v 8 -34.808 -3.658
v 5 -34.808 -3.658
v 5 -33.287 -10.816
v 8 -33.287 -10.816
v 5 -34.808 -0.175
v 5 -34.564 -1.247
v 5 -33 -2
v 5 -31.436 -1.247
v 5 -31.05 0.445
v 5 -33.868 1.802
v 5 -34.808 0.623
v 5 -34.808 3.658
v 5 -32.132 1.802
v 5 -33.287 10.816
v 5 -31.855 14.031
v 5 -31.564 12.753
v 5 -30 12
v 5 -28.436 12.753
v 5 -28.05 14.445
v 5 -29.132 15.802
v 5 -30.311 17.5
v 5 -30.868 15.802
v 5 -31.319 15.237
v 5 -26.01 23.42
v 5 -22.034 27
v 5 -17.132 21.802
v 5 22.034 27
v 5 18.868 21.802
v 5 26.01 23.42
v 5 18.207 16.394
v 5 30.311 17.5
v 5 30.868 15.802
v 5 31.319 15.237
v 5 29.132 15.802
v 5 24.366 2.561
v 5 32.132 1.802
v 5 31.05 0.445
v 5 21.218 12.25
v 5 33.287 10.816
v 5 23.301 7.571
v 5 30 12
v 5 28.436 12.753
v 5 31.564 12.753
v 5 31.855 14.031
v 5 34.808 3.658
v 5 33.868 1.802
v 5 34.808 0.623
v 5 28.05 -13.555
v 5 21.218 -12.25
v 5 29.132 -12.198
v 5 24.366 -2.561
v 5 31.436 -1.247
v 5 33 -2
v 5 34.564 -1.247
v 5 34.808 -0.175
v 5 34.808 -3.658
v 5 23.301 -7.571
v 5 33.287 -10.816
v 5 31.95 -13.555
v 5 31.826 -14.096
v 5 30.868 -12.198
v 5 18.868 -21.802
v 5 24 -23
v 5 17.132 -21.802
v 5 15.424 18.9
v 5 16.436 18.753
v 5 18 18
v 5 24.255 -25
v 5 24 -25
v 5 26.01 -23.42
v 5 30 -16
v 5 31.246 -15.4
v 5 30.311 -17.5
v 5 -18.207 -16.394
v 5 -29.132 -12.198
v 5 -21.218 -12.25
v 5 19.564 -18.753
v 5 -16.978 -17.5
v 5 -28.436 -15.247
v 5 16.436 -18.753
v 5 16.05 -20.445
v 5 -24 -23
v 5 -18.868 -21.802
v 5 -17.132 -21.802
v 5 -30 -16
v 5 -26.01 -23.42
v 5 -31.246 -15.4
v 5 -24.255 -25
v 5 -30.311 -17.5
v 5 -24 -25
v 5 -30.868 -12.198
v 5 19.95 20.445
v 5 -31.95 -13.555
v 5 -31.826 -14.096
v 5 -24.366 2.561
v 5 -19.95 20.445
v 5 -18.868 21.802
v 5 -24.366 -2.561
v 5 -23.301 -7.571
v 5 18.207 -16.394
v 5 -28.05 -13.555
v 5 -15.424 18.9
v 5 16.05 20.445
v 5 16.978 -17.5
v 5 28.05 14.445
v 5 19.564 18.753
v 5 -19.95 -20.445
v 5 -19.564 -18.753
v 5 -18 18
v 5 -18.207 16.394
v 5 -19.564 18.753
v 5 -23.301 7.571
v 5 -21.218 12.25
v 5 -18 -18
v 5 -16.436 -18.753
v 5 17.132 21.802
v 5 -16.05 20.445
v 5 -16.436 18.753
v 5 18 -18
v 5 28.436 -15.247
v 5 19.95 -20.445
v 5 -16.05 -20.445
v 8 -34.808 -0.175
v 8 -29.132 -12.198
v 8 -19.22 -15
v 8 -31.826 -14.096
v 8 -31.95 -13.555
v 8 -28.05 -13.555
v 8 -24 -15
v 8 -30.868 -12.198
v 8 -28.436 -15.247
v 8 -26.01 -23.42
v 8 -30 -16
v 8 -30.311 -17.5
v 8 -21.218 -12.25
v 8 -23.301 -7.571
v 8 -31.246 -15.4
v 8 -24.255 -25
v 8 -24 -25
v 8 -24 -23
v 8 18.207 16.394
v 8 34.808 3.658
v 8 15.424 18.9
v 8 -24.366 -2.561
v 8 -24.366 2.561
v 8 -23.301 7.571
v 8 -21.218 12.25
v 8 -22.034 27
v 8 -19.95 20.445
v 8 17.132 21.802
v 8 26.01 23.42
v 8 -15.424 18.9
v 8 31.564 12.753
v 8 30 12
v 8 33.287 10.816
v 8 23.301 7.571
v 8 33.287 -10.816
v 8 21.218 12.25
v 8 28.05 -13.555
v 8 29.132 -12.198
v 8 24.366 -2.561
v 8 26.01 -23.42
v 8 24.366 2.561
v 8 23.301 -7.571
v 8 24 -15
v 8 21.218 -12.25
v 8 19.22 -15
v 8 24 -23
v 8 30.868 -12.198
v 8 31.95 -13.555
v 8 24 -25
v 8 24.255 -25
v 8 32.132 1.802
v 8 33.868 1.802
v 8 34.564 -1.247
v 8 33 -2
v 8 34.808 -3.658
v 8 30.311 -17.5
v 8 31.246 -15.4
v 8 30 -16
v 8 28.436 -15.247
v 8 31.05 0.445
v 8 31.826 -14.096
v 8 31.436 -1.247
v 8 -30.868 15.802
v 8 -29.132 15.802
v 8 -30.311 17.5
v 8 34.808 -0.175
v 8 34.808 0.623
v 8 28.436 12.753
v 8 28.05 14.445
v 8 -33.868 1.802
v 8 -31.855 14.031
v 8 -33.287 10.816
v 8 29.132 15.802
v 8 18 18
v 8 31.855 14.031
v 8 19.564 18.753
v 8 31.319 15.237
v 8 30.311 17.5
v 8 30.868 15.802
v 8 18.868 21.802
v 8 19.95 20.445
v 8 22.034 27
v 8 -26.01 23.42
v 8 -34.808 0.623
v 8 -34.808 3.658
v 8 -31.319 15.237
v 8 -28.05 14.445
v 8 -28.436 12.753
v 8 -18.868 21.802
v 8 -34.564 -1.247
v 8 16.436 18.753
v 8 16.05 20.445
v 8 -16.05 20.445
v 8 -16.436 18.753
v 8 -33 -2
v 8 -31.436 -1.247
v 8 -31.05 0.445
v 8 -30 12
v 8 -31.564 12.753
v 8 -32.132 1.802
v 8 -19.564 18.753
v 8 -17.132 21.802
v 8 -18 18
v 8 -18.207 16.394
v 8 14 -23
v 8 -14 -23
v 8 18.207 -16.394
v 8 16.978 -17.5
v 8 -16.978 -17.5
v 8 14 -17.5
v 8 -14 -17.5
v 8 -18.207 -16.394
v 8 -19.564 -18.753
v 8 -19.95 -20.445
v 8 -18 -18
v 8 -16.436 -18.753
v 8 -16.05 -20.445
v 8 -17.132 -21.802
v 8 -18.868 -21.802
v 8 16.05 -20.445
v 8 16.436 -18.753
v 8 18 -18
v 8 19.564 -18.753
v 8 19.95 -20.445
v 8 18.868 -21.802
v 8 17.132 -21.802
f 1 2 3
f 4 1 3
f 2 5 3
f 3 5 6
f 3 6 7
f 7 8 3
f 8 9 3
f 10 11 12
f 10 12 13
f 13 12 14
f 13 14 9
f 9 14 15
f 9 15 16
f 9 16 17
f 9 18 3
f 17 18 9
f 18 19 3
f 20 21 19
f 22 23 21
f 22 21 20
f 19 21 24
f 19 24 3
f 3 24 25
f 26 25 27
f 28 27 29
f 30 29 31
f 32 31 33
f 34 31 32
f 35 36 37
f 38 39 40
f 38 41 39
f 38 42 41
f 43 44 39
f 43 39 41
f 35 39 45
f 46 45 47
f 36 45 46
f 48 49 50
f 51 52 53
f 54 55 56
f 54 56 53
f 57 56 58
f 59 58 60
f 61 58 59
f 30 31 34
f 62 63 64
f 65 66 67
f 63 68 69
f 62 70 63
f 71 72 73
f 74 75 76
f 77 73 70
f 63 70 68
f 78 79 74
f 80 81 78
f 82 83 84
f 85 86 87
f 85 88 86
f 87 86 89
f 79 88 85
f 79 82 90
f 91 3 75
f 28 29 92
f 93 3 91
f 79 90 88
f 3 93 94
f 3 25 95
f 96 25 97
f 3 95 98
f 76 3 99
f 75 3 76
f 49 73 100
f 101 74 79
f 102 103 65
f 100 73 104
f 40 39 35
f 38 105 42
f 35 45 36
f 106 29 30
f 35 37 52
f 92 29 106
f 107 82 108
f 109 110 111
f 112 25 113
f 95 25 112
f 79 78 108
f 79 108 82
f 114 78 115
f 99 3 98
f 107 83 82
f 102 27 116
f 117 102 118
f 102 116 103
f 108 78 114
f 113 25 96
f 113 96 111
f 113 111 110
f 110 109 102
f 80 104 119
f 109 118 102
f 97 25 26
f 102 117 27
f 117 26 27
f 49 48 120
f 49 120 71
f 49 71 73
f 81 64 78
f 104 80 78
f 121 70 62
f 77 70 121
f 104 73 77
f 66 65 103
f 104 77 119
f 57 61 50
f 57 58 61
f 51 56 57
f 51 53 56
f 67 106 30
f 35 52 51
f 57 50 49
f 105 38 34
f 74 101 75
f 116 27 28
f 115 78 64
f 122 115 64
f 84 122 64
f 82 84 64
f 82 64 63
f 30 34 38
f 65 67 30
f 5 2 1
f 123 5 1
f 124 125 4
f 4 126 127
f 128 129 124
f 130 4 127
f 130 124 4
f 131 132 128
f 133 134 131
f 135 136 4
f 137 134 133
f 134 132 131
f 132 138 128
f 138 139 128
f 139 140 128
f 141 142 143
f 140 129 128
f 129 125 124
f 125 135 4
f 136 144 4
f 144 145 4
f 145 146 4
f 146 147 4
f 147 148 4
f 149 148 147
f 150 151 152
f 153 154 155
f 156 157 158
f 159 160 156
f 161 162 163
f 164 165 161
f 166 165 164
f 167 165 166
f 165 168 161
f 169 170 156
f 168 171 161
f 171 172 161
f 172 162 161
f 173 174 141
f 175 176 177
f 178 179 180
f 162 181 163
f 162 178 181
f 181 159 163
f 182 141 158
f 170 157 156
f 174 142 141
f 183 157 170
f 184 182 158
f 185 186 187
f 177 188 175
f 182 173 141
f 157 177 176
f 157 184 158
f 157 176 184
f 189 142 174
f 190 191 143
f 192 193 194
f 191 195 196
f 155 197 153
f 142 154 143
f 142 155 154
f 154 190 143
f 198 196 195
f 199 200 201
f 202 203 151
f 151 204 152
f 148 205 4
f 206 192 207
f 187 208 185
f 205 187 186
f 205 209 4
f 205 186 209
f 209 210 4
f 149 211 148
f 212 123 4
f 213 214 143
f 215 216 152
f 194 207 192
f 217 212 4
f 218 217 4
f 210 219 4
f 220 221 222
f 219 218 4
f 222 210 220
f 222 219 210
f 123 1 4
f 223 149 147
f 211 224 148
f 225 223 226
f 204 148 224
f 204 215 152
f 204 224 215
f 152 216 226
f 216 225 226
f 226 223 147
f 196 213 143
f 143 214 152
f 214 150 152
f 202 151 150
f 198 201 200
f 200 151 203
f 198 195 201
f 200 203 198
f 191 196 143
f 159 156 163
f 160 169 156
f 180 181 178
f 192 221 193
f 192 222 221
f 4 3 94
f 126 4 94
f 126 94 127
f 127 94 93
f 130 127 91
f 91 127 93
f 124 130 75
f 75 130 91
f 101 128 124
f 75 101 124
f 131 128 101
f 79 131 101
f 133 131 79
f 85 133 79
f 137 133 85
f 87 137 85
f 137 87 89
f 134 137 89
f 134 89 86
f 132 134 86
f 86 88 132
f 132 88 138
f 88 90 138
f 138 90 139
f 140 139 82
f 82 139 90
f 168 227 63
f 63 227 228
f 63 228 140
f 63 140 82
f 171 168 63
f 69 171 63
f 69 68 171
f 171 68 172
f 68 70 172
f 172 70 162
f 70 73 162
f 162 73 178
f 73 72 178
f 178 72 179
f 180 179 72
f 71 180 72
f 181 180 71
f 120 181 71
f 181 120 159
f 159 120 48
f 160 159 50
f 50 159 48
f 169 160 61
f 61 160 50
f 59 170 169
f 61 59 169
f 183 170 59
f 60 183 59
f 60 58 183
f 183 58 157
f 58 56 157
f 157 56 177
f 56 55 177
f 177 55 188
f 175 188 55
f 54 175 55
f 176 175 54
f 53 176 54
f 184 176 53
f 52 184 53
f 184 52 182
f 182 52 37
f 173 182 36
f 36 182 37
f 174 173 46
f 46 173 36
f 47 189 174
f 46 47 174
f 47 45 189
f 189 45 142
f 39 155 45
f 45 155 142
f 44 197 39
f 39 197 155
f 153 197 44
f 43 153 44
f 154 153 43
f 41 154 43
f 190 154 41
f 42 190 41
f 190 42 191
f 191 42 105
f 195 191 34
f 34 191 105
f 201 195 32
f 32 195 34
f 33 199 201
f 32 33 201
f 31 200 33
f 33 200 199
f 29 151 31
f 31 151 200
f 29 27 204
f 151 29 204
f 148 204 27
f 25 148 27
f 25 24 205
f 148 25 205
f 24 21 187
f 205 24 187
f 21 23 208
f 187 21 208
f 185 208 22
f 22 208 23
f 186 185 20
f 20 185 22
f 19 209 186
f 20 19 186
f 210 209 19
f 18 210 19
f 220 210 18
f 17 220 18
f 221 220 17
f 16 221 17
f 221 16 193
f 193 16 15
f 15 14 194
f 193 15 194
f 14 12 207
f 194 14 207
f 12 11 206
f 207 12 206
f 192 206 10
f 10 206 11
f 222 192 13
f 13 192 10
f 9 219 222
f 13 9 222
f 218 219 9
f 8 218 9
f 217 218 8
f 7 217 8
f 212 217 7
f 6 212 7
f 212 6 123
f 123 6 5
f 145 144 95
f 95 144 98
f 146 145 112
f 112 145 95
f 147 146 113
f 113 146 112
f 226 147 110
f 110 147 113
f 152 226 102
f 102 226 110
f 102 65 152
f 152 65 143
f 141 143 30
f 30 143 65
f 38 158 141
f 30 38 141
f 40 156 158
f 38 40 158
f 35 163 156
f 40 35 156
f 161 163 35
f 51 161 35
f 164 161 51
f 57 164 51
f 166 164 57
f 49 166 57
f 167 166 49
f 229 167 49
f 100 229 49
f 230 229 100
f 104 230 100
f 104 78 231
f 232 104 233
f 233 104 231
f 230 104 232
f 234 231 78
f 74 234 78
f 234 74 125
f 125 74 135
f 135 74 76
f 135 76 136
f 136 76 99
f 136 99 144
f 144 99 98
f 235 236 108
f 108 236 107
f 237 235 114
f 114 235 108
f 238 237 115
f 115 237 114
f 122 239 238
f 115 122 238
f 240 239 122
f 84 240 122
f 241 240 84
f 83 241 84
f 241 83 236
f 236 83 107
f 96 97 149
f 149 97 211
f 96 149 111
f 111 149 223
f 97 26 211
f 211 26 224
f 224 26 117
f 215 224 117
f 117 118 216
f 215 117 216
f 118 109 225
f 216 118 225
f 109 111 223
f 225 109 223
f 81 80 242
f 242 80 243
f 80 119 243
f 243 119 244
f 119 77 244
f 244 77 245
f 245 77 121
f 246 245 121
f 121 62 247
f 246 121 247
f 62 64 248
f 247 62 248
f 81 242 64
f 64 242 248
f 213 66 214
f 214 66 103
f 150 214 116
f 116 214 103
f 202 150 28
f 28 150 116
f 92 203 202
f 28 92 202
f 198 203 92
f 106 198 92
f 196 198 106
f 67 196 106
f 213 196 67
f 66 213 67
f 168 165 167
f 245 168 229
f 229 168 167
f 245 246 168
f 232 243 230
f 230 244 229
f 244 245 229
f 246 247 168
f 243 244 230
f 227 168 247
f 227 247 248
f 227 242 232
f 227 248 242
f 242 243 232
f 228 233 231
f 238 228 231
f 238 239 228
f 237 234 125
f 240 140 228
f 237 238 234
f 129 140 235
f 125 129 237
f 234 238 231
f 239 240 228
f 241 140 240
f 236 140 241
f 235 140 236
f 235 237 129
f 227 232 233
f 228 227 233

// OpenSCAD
// file: rib.scad
module solid_rib(){
scale(0.42)
linear_extrude(file = "../rib/NACA_4415_circles_lighter.dxf",
height = 10, convexity = 10
);
}


module rib(rod_leading,rod_trailing){
difference(){
solid_rib();
translate([12,11,-1])
cylinder(r=rod_leading/2,h=100);

translate([146,5,-1])
cylinder(r=rod_trailing/2,h=100);

}
}

rib(8,6);
// file: right_wing.scad
 
use<rib.scad>;
use <left_wing.scad>



module vrib(){
rotate([90,0,0])
rib(8,6);
}

module rods_right_wing(){

mirror([0,1,0])
rods_left_wing();

}

module right_wing(){
mirror([0,1,0])
left_wing();

}

right_wing();
// file: left_wing.scad
 
use<rib.scad>;

module vrib(){
rotate([90,0,0])
rib(8,6);
}

module rods_left_wing(){

translate([0,-52,0]){
// Front rod
translate([0,50,0])
rotate([90,0,0])
translate([3.8,10.2,14])
cylinder(r=9/2,h=840);



}
}

module left_wing(){

rods_left_wing();

translate([0,-52,0]){


// Ribs
for(i=[0:6])
translate([0,-i*((850-50)/6),0])vrib();
}

}

left_wing();
// file: wings_support.scad
use <wings.scad>;

module rod_supports(){
  difference(){
  union(){
  translate([19+0.5,-24+4+0.5,25]) cube([155-8-30-1,40-1,5]);

  translate([19+0.5-18,-24+4+0.5-10,30]) cube([155-8-30-1+36,40-1+20,18]);
  }
  union(){
    rods_both_wings();
    translate([19.5,-20.5,33]) cube([155-8-30-1,40-1,50]);
    rotate([0,3,0]) translate([19+0.5-18,-24+4+0.5-10,49]) cube([155-8-30-1+36,40-1+20,18]);
  }
  }
}


  //both_wings();

//
//module rod_supports(){
//  // Supports for wing rods (without holes)
//
//difference(){
//union(){
//  // rod suport front (with cover screw holes)
//    translate([1, -40, 7]) cube([18, 80, 17]);
//    translate([1, -3/2, -40]) cube([18, 3, 60]);
//    translate([1, -40, -25]) cube([18, 80, 8]);
//
//  difference(){
//    union(){
//      // rod suport back (with cover screw holes)
//      translate([135, -40, 1]) cube([18, 80, 23]);
//      translate([136, -3/2, -40]) cube([18, 3, 48]);
//    }
//    union(){
//      translate([134, -46/2, 12])
//      cube([19+2, 46, 30]);
//    }
//  }
//}
//  difference(){
//    rotate([0, 90, 0]) cylinder(r = 100 / 2, h = 155);
//    rotate([0, 90, 0]) cylinder(r = 70 / 2, h = 155);
//  }
//}
//
//}
rod_supports();
// file: body_rib.scad
module body_rib_solid(height){
difference(){
  translate([0,-35,-35])cube([height,70,70]);
  union(){
    difference(){
      translate([-1,0,0]) rotate([0,90,0]) cylinder(r=100,h=height+2);
      translate([-1,0,0]) rotate([0,90,0]) cylinder(r=35,h=height+2);
    }
    // Down plane
    translate([-1,-25,-35])cube([height+1,50,10]);
    // Upper plane
    translate([-1,-25,27])cube([height+1,50,30]);
  }
}
}


module body_rib(height){
  difference(){
    body_rib_solid(height);
    scale([1.1,0.7,0.7]) body_rib_solid(height);
  }
}


body_rib(3);
// file: tail.scad
module tail_front(){
  difference(){
  scale([0.6,0.3,0.6])
  linear_extrude(file = "tail/front.dxf",height = 200, convexity = 10);

  union(){
    translate([110,60,-1])
    cube([36,70,20]);
    translate([110,60,101])
    cube([36,70,20]);
    translate([110,60,30])
    cube([16,70,60]);

  }
}

}

module tail_back(){

  difference(){
  scale([0.6,0.3,0.6])
  scale([0.6,1,1])
  translate([120,0,0])
  linear_extrude(file = "tail/back.dxf",height = 200, convexity = 10);
  union(){
    translate([110,60,18])
    cube([22,70,120-36]);
  }
}
}

module tail_rod(){
      translate([110, 0, -12])rotate([0,90,0])cylinder(r=3.7,h=370);
}

module tail_unstranlated(){
difference(){
union(){
  tail_front();
  tail_back();
}
    translate([120,65,-1])
cylinder(r=2,h=200);

}
}

module tail(){
  translate([400,-65.2,-13]) tail_unstranlated();
}

module tail_socket(){
  difference(){
    translate([460,0,-11]) cube([90,20,5],center=true);
    union(){
      tail_rod();
      translate([460,-6,-30]) cylinder(r=2,h=400);
     translate([500,-6,-30]) cylinder(r=2,h=400);
     translate([425,-6,-30]) cylinder(r=2,h=400);
     translate([460,6,-30]) cylinder(r=2,h=400);
     translate([500,6,-30]) cylinder(r=2,h=400);
     translate([425,6,-30]) cylinder(r=2,h=400);
    }
  }
}

module tail_socket_bottom(){
  difference(){
    translate([460,0,-17]) cube([90,20,5],center=true);
    union(){
      tail_rod();
      translate([460,-6,-30]) cylinder(r=2,h=400);
     translate([500,-6,-30]) cylinder(r=2,h=400);
     translate([425,-6,-30]) cylinder(r=2,h=400);
     translate([460,6,-30]) cylinder(r=2,h=400);
     translate([500,6,-30]) cylinder(r=2,h=400);
     translate([425,6,-30]) cylinder(r=2,h=400);

    }
  }
}

module back_wheel(){
difference(){
 translate([485,0,-28]) cube([20,6,20],center=true);
 translate([485-10,-6+12,-28-20]) rotate([0,45,0]) cube([40,40,40],center=true);
}
}

difference(){
tail();
    tail_rod();
}
//tail_rod();
tail_socket();
tail_socket_bottom();

back_wheel();
// file: nose.scad
module nose_one_hole(){
  translate([-25,18,20])
  rotate([0,90,0])
  cylinder(r=2,h=60);
  nose_one_countersunk();
}

module nose_one_countersunk(){
  translate([-30,18,20])
  rotate([0,90,0])
  cylinder(r=3.2,h=20);
}

module nose_one_screw_cylinder(){
  translate([-21,18,20]) rotate([0,90,0]) cylinder(r=3.6,h=21);
}

module nose_screw_cylinders(){
  mirror([0,0,0]) nose_one_screw_cylinder();
  mirror([0,1,0]) nose_one_screw_cylinder();
  mirror([0,0,1]) nose_one_screw_cylinder();
  mirror([0,1,0])mirror([0,0,1]) nose_one_screw_cylinder();
}

module nose_holes(){
  mirror([0,0,0]) nose_one_hole();
  mirror([0,1,0]) nose_one_hole();
  mirror([0,0,1]) nose_one_hole();
  mirror([0,1,0])mirror([0,0,1]) nose_one_hole();
}

module nose(){

difference(){
  nose_no_holes();
  nose_holes();
}

}

module nose_no_holes(){
      nose_screw_cylinders();
translate([155,0,0])
rotate([0,180,0])
  difference(){
    union(){
      difference(){
          translate([155,0,0])
          rotate([0,90,0])
          cylinder(r1=35,r2=15,h=50);

        union(){

          // Inner
          translate([154,0,0])
          rotate([0,90,0])
          cylinder(r1=32,r2=12,h=52);

          // Upper plane
          translate([1,-100,-63+1])
          cube([2000,2000,38]);

          // Down plane
          translate([1,-100,27-3])
          cube([2000,2000,40]);
        }
      }
      // Upper plane
      translate([155+0.1,-25,-27])
      cube([30,50,3]);

      // Down plane
      translate([155+0.1,-25,26-4])
      cube([30,50,3]);

    }

    // Clear perimeter of nose
    difference(){
      translate([155,0,0])
      rotate([0,90,0])
      cylinder(r1=370,r2=170,h=60);

      translate([155,0,0])
      rotate([0,90,0])
      cylinder(r1=35,r2=15,h=50);

    }
  }
}
module 
motor_hole(){
  translate([-70,15.556/2,15.556/2])
  rotate([0,90,0])
  cylinder(r1=2,r2=2,h=100);
}
module motor_holes(){
  mirror([0,0,0])motor_hole();
  mirror([0,1,0])motor_hole();
  mirror([0,0,1])motor_hole();
  mirror([0,1,1])motor_hole();

}

module motor_plate(){
    difference(){

  translate([0,-35,-30])cube([5,70,70]);
  union(){
  difference(){
    translate([-1,0,0]) rotate([0,90,0]) cylinder(r=100,h=50);
    translate([0,0,0]) rotate([0,90,0]) cylinder(r=35,h=50);
  }
      // Upper plane
      translate([-1,-25,-35])
      cube([30,50,10]);

      // Down plane
      translate([-1,-25,27])
      cube([30,50,30]);

nose_holes();
motor_holes();

  }

    }



}

nose();

motor_plate();
// file: wings.scad
use <left_wing.scad>;
use <right_wing.scad>;



// wings 
dihedral_angle = 10;

module both_wings(){
    translate([2, 10, 27])
	rotate([-dihedral_angle / 2, 0, 0])
	left_wing();
    translate([2, -10, 27])
	rotate([dihedral_angle / 2, 0, 0])
	right_wing();
}

module rods_both_wings(){
    translate([2, 10, 27])
	rotate([-dihedral_angle / 2, 0, 0])
	rods_left_wing();
    translate([2, -10, 27])
	rotate([dihedral_angle / 2, 0, 0])
	rods_right_wing();
}


  


both_wings();
//translate([0,0,30])
//rods_both_wings();
// file: body.scad
use <wings.scad>;
use <nose.scad>;
use <tail.scad>;
use <body_rib.scad>;
use <wings_support.scad>;

module boxing(){

  // First rib
  translate([5,0,0]) body_rib(3);

  // Last rib
  translate([152,0,0]) body_rib_solid(3);

  // Medium rib (if necessary)
  translate([80,0,0]) body_rib(3);

}


module right_cover_support(){
  // Right cover support
  difference(){
    translate([0,60/2-15,14])
    cube([155,10,10]);
    translate([-1,60/2-15-20-6,13])
    rotate([-55,0,0])
    cube([157,30,30]);
  }
}


module front_back_covers(){
  difference(){
    union(){
      rotate([0,90,0]) cylinder(r = 70 / 2, h = 2);
      translate([155-2,0,0]) rotate([0, 90, 0]) cylinder(r = 70 / 2, h = 2);
    }
    translate([-10,-100,24]) cube([200,200,200]);
  }
}

module bottom_plate(){
  translate([0,-24,-25]) cube([155,48,2]);
  translate([8,-24,-25]) cube([10,10,10]);
  translate([8,-24+48-10,-25]) cube([10,10,10]);

  translate([155-10-3.5,-24,-25]) cube([10,10,10]);
  translate([155-10-3.5,-24+48-10,-25]) cube([10,10,10]);
}

module upper_plate(){
translate([0,0,2])
difference(){
  rotate([180,0,0])bottom_plate();
  translate([19,-24+4,20]) cube([155-8-30,40,20]);
}
}


module carbon_fiber_holes(){
  translate([0,33,0])
  rotate([0,90,0])
  cylinder(r=2,h=155);
  translate([0,-33,0])
  rotate([0,90,0])
  cylinder(r=2,h=155);

  translate([0,-30,14])
  rotate([0,90,0])
  cylinder(r=2,h=155);
  translate([0,30,14])
  rotate([0,90,0])
  cylinder(r=2,h=155);

  translate([0,-30,-14])
  rotate([0,90,0])
  cylinder(r=2,h=155);
  translate([0,30,-14])
  rotate([0,90,0])
  cylinder(r=2,h=155);


}

module body(){

    difference() {
      union () {
        boxing();
        //rod_supports();
        //front_back_covers();
        bottom_plate();
        upper_plate();
        tail_rod_support();
        tail_rod_cover();
        carbon_fiber_holes();
        
      }
      union () {
        nose_holes();
        tail_rod();
        tail_rod_screws();
        carbon_fiber_holes();

      }
    }
  }

module tail_rod_screws(){
  translate([121, -7, -50]) cylinder(r=2,h=100);
  mirror([0,1,0])translate([121, -7, -50]) cylinder(r=2,h=100);

  translate([128, -7, -50]) cylinder(r=2,h=100);
  mirror([0,1,0])translate([128, -7, -50]) cylinder(r=2,h=100);
}

module tail_rod_support(){
    translate([134, -10, -24]) cube([18, 20, 20]);
    translate([134-18, -10, -24]) cube([18, 20, 10]);
}

module tail_rod_cover(){
    translate([134-18, -10, -14+2]) cube([16, 20, 8]);
}


  body();
  nose();
  motor_plate();
  both_wings();
  //tail_full();
  tail_rod();
  rod_supports();
// main file
use <body.scad>;
use <wings.scad>;
use <nose.scad>;
use <tail.scad>;
use <body_rib.scad>;


difference(){
union(){
translate([5,0,0]) body_rib(3);

}

union(){
  carbon_fiber_holes();
  nose_holes();
  tail_rod();
  tail_rod_screws();
  tail_rod_support();
  bottom_plate();

}
}
